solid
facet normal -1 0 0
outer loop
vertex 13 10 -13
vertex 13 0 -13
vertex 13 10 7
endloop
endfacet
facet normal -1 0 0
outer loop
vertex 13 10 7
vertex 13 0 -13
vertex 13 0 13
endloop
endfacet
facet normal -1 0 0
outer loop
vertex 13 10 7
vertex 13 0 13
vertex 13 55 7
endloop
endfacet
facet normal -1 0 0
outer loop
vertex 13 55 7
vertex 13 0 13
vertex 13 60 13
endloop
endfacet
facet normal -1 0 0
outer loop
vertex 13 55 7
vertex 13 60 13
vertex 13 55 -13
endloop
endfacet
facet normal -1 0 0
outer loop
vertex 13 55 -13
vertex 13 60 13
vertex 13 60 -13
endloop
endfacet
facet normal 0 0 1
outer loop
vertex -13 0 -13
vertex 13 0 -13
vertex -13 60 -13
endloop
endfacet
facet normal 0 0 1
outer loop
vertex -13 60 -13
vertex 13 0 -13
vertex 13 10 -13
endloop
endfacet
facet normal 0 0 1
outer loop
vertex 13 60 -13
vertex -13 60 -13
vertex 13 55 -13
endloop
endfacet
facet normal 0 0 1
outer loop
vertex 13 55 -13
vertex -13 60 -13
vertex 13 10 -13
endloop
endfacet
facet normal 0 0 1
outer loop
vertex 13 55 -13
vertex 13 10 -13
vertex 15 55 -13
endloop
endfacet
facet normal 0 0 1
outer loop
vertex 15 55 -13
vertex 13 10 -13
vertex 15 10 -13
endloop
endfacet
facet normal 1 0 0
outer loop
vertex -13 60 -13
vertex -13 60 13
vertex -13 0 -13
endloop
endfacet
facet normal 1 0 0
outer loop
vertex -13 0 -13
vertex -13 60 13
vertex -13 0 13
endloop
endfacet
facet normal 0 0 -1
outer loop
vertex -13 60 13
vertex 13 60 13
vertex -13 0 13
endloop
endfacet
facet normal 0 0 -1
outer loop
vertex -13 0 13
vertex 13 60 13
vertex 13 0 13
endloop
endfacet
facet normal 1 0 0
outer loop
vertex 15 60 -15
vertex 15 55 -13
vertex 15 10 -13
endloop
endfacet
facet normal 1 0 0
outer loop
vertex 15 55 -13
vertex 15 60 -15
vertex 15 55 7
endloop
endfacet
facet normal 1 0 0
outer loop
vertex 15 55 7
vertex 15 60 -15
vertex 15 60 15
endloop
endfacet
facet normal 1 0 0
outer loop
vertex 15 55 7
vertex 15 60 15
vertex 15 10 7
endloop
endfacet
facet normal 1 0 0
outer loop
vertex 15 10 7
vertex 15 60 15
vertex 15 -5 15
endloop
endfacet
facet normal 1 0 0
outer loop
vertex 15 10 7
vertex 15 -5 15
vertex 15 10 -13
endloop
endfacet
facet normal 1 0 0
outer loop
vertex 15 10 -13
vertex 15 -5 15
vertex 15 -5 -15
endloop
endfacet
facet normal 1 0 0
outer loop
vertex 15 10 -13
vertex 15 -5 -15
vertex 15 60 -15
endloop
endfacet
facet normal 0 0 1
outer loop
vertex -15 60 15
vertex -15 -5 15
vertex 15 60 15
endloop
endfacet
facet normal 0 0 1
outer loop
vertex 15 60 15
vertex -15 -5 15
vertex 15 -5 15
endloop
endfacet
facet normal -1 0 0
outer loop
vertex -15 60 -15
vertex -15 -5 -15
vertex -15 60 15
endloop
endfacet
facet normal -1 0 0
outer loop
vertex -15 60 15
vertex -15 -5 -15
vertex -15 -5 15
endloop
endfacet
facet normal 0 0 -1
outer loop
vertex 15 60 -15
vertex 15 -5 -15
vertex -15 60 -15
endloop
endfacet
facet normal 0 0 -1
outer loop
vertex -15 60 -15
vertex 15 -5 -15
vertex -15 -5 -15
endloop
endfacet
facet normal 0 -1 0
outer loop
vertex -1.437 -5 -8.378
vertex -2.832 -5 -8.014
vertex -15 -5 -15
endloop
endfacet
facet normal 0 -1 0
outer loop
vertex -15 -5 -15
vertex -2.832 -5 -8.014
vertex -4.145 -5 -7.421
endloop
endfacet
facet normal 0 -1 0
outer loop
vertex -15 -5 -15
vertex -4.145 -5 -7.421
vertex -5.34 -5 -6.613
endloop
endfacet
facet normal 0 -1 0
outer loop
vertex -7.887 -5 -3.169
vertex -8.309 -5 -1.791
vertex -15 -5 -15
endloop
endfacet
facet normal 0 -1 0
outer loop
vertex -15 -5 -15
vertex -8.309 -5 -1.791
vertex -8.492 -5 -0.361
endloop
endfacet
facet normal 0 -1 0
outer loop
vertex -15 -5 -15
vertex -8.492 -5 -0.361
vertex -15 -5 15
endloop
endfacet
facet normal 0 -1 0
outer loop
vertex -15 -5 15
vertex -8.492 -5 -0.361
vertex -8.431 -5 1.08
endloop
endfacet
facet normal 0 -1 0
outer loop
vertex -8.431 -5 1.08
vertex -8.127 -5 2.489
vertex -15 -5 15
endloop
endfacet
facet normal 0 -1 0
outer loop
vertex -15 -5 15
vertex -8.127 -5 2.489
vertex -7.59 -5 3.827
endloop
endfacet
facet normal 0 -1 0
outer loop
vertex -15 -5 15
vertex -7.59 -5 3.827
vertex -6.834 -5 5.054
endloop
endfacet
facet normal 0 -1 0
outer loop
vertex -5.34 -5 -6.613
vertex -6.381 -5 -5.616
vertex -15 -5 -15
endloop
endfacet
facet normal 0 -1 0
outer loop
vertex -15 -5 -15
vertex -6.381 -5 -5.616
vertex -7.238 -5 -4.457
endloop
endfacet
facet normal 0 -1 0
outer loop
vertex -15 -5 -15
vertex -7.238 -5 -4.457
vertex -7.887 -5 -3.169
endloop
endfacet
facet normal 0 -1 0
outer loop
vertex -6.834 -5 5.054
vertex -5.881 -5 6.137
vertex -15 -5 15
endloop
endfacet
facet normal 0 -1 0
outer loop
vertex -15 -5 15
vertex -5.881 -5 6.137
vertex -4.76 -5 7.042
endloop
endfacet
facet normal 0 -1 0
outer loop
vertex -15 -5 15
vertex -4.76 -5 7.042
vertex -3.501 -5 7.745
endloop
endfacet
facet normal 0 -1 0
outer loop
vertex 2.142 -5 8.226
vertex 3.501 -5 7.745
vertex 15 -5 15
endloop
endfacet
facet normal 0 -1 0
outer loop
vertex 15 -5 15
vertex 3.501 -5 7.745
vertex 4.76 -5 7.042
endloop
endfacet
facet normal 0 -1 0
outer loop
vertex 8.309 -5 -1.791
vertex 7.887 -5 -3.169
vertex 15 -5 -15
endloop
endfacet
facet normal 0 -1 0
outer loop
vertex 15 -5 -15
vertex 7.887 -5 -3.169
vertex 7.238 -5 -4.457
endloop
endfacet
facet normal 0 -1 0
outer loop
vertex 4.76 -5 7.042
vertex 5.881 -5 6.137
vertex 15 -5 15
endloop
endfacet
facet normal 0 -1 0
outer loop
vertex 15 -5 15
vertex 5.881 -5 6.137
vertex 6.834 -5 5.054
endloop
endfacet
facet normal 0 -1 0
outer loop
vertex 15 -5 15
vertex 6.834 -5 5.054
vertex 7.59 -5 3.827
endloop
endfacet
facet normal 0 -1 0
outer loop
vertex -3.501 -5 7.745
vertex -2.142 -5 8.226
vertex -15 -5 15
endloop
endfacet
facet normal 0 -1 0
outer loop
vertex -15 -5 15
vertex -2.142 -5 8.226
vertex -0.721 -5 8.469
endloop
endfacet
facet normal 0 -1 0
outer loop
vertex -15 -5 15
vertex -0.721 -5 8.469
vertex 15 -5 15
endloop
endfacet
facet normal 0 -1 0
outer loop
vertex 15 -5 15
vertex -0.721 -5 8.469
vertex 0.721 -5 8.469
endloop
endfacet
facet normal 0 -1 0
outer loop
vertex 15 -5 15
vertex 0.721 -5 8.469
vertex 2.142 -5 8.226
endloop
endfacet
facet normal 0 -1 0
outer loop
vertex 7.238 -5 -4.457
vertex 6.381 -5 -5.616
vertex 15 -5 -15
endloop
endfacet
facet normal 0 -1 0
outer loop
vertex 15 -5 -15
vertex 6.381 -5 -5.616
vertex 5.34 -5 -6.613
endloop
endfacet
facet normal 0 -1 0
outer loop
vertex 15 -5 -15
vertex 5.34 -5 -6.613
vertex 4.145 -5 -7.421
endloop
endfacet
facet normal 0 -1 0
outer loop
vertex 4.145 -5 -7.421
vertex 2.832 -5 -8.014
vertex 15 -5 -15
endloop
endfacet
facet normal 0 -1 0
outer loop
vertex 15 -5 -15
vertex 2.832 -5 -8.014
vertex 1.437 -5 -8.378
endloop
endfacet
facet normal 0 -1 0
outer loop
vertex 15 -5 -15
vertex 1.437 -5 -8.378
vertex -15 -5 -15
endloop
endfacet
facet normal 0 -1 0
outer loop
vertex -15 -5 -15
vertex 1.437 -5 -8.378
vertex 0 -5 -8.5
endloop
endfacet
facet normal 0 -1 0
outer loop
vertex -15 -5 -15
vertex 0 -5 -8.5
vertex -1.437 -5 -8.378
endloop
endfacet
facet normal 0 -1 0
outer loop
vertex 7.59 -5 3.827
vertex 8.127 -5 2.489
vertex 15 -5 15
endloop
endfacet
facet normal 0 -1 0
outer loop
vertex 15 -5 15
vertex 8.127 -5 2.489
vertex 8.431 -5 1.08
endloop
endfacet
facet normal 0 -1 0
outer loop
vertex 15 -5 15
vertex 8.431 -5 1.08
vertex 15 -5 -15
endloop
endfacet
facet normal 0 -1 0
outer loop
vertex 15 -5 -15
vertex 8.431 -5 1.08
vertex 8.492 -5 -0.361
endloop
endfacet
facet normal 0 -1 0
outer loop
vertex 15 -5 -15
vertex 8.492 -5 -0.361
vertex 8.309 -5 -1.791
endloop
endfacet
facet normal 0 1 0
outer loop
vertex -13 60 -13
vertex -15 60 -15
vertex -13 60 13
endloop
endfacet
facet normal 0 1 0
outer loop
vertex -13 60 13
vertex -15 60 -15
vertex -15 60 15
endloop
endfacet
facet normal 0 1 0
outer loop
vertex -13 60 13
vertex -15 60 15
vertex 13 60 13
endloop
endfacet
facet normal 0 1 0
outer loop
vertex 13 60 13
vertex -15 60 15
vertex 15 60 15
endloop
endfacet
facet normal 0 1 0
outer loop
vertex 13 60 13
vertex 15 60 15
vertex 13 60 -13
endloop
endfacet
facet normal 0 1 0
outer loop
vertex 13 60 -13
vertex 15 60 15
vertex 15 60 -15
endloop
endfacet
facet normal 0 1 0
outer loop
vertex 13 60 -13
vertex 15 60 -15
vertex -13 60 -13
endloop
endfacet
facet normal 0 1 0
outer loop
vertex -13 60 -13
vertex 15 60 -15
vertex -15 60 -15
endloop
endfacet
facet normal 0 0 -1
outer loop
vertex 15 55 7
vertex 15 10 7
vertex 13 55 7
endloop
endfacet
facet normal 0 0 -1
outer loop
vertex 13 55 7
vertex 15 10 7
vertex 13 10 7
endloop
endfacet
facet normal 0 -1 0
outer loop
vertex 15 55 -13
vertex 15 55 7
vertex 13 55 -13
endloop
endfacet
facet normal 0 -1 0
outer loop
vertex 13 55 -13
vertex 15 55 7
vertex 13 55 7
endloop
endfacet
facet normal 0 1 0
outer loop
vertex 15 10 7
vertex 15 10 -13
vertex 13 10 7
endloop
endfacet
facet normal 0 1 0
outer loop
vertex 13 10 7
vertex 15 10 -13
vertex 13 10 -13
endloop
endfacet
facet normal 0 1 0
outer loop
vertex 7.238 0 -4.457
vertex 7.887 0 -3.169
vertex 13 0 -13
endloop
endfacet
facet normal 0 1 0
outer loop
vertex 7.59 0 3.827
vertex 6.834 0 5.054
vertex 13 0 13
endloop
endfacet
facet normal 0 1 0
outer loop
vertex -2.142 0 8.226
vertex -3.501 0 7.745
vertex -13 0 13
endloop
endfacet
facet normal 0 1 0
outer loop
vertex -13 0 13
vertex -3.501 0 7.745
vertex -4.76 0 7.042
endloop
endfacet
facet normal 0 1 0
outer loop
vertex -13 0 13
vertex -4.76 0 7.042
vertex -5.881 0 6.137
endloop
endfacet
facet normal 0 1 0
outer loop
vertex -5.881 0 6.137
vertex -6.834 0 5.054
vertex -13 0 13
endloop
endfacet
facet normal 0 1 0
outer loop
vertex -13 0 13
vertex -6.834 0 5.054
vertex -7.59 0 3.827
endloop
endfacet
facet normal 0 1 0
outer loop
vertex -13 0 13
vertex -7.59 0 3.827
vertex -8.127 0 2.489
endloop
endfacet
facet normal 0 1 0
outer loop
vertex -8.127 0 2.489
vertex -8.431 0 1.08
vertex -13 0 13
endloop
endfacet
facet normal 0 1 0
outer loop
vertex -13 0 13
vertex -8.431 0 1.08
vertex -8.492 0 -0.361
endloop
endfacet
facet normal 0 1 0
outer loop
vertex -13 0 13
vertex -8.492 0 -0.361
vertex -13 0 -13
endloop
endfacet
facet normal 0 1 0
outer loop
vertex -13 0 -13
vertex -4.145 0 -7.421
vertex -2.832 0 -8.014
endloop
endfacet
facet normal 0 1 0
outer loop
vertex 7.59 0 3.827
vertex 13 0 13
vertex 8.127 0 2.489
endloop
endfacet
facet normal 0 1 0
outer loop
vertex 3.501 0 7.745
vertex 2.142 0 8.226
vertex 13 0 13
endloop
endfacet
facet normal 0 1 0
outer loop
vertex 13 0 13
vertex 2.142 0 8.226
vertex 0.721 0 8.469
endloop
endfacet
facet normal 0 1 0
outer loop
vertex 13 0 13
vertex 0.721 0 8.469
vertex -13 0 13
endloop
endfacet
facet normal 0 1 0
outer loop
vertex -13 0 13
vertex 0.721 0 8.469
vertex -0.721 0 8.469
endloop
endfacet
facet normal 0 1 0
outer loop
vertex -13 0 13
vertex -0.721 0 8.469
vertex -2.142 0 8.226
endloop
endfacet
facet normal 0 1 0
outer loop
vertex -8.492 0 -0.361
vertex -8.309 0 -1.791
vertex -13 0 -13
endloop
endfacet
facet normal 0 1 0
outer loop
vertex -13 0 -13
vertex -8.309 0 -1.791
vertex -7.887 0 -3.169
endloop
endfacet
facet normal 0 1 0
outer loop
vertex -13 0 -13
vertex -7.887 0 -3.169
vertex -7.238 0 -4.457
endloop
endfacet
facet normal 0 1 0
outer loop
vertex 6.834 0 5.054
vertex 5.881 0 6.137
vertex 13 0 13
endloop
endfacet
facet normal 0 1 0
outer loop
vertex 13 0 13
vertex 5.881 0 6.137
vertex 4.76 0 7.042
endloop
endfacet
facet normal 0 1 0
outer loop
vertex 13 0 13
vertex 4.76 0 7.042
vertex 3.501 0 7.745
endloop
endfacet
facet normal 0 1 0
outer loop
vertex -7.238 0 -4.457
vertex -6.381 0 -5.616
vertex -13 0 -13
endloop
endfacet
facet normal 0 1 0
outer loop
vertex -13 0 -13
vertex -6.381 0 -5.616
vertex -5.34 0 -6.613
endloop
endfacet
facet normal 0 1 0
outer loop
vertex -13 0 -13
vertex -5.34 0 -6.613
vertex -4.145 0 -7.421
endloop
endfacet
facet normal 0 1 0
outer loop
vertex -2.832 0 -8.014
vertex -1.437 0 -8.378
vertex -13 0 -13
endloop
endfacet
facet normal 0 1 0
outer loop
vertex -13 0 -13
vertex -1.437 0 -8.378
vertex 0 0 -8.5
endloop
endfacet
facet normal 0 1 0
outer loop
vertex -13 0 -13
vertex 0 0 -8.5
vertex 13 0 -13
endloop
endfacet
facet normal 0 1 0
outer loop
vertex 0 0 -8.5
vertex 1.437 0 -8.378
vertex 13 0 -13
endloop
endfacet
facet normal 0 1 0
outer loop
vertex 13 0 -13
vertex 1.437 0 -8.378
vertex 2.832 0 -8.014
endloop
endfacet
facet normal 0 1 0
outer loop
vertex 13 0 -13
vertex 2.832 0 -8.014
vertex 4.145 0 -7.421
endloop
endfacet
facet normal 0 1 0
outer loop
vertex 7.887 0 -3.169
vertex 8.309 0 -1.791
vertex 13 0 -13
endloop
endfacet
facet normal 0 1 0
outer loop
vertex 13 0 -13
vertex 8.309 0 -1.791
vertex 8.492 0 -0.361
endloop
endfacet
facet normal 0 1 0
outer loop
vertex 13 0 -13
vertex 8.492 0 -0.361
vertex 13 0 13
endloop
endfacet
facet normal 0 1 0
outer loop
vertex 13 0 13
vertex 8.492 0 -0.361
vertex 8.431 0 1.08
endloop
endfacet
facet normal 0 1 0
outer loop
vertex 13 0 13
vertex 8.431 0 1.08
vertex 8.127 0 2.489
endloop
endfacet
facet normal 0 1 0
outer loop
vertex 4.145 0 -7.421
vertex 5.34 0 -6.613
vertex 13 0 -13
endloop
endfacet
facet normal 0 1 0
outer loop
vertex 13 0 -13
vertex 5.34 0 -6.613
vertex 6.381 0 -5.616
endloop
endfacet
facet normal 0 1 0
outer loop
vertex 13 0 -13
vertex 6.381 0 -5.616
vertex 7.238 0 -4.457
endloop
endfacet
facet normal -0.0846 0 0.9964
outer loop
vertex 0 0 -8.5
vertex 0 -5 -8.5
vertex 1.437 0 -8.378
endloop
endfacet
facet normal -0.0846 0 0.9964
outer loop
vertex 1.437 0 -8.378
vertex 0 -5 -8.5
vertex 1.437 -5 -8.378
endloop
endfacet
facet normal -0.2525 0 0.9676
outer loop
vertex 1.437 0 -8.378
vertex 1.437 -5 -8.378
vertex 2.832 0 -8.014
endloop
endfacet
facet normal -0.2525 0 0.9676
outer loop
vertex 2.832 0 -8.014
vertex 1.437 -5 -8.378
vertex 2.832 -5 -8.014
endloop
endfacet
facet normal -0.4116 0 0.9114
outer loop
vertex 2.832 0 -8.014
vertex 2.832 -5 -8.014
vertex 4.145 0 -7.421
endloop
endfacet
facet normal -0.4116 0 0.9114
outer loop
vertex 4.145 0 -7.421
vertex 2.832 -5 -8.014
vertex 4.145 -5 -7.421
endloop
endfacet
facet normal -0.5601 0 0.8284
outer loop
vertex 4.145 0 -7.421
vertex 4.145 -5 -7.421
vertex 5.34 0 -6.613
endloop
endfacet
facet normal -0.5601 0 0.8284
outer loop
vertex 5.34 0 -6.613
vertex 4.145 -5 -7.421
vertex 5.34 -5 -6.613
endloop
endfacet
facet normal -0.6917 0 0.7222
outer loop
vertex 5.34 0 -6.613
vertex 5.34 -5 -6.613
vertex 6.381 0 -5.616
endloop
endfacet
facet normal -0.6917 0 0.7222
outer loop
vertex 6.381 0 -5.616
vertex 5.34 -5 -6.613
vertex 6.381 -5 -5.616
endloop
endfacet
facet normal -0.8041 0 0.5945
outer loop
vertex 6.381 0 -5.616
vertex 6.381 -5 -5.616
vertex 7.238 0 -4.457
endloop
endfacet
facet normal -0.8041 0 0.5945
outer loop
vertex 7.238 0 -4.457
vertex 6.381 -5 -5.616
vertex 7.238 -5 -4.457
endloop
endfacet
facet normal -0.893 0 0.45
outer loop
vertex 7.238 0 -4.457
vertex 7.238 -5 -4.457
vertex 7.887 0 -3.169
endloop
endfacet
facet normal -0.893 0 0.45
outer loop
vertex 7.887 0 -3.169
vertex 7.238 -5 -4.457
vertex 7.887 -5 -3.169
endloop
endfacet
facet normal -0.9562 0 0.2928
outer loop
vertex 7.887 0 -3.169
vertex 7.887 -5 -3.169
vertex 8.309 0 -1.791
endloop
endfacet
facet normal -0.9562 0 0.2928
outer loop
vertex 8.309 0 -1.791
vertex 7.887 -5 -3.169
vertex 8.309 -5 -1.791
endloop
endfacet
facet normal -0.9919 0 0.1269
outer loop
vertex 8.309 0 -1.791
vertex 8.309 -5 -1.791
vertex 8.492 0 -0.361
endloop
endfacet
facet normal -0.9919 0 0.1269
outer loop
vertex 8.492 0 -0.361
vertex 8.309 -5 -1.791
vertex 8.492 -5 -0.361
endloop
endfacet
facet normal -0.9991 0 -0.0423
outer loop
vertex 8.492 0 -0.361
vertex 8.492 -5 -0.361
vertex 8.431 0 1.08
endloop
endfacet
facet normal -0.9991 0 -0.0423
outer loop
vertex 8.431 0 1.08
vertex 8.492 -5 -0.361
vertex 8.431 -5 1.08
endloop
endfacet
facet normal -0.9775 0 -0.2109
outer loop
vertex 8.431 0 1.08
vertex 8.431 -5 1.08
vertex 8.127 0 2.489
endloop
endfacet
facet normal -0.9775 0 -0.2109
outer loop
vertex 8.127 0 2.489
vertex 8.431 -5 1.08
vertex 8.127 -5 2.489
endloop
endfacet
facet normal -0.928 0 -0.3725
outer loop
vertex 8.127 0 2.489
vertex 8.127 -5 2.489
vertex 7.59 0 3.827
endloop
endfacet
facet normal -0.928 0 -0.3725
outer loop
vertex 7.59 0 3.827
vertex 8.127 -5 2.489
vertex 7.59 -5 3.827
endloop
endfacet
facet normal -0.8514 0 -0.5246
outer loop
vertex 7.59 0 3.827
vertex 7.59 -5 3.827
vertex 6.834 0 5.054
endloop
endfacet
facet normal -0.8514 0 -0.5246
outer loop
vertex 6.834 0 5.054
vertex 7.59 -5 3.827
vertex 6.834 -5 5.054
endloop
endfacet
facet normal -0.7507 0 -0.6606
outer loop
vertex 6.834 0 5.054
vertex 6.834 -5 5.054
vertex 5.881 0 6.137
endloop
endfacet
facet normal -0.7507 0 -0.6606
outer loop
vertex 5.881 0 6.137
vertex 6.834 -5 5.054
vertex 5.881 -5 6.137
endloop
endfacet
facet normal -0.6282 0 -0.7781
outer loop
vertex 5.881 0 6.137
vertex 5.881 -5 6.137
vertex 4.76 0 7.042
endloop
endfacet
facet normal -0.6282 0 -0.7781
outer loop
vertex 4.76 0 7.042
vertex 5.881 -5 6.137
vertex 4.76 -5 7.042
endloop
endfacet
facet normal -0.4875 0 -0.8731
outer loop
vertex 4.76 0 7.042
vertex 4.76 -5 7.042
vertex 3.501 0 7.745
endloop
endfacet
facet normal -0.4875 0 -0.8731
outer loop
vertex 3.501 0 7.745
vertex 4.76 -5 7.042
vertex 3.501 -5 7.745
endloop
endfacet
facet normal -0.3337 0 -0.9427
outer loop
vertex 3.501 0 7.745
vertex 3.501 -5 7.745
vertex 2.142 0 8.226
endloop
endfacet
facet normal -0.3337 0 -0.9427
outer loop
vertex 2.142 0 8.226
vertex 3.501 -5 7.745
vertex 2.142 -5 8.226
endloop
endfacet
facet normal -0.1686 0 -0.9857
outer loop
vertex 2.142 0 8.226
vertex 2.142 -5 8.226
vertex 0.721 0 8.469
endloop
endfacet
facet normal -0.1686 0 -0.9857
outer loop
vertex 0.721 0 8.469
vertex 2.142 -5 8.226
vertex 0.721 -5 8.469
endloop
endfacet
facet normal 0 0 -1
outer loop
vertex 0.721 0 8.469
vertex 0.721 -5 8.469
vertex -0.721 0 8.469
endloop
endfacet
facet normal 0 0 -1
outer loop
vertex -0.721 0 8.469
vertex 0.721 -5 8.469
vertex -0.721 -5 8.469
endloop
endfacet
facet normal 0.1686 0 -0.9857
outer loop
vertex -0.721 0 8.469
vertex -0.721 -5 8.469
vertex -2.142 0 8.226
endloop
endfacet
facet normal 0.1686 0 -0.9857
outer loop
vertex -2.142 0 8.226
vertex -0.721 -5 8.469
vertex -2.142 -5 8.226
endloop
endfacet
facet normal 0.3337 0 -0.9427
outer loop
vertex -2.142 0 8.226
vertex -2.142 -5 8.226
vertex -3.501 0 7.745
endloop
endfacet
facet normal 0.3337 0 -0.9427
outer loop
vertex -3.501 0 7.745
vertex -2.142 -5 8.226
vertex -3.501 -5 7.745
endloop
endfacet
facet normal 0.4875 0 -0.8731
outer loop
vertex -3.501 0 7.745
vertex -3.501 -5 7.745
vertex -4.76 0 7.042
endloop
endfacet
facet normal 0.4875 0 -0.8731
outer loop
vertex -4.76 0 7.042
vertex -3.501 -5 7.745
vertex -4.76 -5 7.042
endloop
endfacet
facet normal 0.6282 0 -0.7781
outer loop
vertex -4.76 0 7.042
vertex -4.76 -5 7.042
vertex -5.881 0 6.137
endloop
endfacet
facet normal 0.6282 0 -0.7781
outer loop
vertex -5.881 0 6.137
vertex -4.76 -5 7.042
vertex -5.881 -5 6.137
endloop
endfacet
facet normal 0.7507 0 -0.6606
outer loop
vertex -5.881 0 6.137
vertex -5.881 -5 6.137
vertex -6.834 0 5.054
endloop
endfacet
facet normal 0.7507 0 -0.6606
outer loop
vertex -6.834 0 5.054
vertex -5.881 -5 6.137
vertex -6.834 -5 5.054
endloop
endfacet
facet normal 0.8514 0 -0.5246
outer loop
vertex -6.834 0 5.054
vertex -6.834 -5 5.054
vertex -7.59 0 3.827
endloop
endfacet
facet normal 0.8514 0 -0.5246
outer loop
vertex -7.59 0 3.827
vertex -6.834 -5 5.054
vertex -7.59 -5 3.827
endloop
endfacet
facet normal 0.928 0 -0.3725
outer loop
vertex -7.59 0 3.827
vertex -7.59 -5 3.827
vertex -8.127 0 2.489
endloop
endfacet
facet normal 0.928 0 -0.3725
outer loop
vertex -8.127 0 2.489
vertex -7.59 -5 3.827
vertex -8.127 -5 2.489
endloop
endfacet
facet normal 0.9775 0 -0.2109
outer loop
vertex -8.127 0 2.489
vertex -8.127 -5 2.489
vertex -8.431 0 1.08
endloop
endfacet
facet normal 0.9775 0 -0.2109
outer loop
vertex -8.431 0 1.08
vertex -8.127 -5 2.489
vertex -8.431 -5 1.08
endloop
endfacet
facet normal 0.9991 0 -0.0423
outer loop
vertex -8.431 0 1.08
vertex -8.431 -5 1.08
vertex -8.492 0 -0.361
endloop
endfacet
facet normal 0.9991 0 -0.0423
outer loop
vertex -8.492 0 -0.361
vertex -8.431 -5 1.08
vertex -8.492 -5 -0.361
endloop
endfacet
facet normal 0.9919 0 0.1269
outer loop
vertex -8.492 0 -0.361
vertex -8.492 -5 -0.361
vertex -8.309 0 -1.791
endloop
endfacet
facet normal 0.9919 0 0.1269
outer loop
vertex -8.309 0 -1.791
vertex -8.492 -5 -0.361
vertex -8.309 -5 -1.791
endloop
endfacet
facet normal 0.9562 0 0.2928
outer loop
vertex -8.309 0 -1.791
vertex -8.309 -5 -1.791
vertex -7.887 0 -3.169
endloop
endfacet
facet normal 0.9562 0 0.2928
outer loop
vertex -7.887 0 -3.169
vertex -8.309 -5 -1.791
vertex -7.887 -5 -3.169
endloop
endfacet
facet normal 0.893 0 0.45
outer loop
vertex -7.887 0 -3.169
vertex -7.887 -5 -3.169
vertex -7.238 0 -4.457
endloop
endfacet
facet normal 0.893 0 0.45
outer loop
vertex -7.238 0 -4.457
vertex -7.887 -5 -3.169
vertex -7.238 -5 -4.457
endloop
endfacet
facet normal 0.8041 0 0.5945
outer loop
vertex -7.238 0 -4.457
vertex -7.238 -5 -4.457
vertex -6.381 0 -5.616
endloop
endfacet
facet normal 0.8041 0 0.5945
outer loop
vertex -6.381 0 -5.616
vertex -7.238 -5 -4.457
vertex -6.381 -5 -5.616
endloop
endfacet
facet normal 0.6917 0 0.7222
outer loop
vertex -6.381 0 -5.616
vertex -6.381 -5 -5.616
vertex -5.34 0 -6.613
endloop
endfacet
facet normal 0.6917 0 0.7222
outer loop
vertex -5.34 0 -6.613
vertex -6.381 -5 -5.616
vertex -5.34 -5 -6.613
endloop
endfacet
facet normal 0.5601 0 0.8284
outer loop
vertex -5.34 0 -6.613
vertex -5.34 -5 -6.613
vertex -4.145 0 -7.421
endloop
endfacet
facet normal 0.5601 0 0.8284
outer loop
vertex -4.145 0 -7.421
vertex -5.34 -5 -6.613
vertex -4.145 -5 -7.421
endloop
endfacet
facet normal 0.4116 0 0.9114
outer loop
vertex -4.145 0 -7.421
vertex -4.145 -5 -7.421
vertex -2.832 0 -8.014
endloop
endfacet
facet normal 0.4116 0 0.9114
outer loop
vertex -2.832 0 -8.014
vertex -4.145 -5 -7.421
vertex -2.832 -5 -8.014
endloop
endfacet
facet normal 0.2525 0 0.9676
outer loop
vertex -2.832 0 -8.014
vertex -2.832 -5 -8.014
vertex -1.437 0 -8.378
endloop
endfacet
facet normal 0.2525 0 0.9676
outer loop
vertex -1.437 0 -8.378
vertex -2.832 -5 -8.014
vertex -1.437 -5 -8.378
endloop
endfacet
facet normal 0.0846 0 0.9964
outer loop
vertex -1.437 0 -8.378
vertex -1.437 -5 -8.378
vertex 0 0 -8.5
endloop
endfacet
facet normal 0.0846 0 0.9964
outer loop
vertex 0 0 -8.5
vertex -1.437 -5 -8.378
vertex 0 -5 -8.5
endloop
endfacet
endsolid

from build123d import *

# Parameters (mm, degrees)
SALIENTE_EXTRUIR1_DEPTH      = 60
SALIENTE_EXTRUIR1_DEPTH_BACK = 5
CROQUIS1_W                   = 30
CROQUIS1_H                   = 30
CROQUIS2_W                   = 26
CROQUIS2_H                   = 26
CORTAR_EXTRUIR3_DEPTH        = 65
CROQUIS3_W                   = 20
CROQUIS3_H                   = 45
CORTAR_EXTRUIR4_DEPTH        = 2
CROQUIS4_W                   = 26
CROQUIS4_H                   = 26
SALIENTE_EXTRUIR2_DEPTH      = 5
CROQUIS5_R                   = 8.5
CORTAR_EXTRUIR5_DEPTH        = 5


with BuildPart() as part:
    # Croquis1 → Saliente-Extruir1 (new, two sides: drawn at the far end of the back side and taken through both)
    with BuildSketch(Plane(origin=(0, 0, 0), x_dir=(1, 0, 0), z_dir=(0, 1, 0)).offset(-SALIENTE_EXTRUIR1_DEPTH_BACK)):
        Rectangle(CROQUIS1_W, CROQUIS1_H)
    extrude(amount=SALIENTE_EXTRUIR1_DEPTH + SALIENTE_EXTRUIR1_DEPTH_BACK)

    # Croquis2 → Cortar-Extruir3 (cut)
    with BuildSketch(Plane(origin=(0, 60, 0), x_dir=(1, 0, 0), z_dir=(0, 1, 0))):
        Rectangle(CROQUIS2_W, CROQUIS2_H)
    extrude(amount=-CORTAR_EXTRUIR3_DEPTH, mode=Mode.SUBTRACT)

    # Croquis3 → Cortar-Extruir4 (cut)
    with BuildSketch(Plane(origin=(15, 0, 0), x_dir=(0, 0, -1), z_dir=(1, 0, 0))):
        with Locations((3, 32.5)):
            Rectangle(CROQUIS3_W, CROQUIS3_H)
    extrude(amount=-CORTAR_EXTRUIR4_DEPTH, mode=Mode.SUBTRACT)

    # Croquis4 → Saliente-Extruir2 (add)
    with BuildSketch(Plane.XZ.offset(5)):
        Rectangle(CROQUIS4_W, CROQUIS4_H)
    extrude(amount=-SALIENTE_EXTRUIR2_DEPTH)

    # Croquis5 → Cortar-Extruir5 (cut)
    with BuildSketch(Plane.XZ.offset(5)):
        with Locations(Location((0, 0, 0), (0, 0, 270))):
            Circle(CROQUIS5_R)
    extrude(amount=-CORTAR_EXTRUIR5_DEPTH, mode=Mode.SUBTRACT)


solid = part.part
